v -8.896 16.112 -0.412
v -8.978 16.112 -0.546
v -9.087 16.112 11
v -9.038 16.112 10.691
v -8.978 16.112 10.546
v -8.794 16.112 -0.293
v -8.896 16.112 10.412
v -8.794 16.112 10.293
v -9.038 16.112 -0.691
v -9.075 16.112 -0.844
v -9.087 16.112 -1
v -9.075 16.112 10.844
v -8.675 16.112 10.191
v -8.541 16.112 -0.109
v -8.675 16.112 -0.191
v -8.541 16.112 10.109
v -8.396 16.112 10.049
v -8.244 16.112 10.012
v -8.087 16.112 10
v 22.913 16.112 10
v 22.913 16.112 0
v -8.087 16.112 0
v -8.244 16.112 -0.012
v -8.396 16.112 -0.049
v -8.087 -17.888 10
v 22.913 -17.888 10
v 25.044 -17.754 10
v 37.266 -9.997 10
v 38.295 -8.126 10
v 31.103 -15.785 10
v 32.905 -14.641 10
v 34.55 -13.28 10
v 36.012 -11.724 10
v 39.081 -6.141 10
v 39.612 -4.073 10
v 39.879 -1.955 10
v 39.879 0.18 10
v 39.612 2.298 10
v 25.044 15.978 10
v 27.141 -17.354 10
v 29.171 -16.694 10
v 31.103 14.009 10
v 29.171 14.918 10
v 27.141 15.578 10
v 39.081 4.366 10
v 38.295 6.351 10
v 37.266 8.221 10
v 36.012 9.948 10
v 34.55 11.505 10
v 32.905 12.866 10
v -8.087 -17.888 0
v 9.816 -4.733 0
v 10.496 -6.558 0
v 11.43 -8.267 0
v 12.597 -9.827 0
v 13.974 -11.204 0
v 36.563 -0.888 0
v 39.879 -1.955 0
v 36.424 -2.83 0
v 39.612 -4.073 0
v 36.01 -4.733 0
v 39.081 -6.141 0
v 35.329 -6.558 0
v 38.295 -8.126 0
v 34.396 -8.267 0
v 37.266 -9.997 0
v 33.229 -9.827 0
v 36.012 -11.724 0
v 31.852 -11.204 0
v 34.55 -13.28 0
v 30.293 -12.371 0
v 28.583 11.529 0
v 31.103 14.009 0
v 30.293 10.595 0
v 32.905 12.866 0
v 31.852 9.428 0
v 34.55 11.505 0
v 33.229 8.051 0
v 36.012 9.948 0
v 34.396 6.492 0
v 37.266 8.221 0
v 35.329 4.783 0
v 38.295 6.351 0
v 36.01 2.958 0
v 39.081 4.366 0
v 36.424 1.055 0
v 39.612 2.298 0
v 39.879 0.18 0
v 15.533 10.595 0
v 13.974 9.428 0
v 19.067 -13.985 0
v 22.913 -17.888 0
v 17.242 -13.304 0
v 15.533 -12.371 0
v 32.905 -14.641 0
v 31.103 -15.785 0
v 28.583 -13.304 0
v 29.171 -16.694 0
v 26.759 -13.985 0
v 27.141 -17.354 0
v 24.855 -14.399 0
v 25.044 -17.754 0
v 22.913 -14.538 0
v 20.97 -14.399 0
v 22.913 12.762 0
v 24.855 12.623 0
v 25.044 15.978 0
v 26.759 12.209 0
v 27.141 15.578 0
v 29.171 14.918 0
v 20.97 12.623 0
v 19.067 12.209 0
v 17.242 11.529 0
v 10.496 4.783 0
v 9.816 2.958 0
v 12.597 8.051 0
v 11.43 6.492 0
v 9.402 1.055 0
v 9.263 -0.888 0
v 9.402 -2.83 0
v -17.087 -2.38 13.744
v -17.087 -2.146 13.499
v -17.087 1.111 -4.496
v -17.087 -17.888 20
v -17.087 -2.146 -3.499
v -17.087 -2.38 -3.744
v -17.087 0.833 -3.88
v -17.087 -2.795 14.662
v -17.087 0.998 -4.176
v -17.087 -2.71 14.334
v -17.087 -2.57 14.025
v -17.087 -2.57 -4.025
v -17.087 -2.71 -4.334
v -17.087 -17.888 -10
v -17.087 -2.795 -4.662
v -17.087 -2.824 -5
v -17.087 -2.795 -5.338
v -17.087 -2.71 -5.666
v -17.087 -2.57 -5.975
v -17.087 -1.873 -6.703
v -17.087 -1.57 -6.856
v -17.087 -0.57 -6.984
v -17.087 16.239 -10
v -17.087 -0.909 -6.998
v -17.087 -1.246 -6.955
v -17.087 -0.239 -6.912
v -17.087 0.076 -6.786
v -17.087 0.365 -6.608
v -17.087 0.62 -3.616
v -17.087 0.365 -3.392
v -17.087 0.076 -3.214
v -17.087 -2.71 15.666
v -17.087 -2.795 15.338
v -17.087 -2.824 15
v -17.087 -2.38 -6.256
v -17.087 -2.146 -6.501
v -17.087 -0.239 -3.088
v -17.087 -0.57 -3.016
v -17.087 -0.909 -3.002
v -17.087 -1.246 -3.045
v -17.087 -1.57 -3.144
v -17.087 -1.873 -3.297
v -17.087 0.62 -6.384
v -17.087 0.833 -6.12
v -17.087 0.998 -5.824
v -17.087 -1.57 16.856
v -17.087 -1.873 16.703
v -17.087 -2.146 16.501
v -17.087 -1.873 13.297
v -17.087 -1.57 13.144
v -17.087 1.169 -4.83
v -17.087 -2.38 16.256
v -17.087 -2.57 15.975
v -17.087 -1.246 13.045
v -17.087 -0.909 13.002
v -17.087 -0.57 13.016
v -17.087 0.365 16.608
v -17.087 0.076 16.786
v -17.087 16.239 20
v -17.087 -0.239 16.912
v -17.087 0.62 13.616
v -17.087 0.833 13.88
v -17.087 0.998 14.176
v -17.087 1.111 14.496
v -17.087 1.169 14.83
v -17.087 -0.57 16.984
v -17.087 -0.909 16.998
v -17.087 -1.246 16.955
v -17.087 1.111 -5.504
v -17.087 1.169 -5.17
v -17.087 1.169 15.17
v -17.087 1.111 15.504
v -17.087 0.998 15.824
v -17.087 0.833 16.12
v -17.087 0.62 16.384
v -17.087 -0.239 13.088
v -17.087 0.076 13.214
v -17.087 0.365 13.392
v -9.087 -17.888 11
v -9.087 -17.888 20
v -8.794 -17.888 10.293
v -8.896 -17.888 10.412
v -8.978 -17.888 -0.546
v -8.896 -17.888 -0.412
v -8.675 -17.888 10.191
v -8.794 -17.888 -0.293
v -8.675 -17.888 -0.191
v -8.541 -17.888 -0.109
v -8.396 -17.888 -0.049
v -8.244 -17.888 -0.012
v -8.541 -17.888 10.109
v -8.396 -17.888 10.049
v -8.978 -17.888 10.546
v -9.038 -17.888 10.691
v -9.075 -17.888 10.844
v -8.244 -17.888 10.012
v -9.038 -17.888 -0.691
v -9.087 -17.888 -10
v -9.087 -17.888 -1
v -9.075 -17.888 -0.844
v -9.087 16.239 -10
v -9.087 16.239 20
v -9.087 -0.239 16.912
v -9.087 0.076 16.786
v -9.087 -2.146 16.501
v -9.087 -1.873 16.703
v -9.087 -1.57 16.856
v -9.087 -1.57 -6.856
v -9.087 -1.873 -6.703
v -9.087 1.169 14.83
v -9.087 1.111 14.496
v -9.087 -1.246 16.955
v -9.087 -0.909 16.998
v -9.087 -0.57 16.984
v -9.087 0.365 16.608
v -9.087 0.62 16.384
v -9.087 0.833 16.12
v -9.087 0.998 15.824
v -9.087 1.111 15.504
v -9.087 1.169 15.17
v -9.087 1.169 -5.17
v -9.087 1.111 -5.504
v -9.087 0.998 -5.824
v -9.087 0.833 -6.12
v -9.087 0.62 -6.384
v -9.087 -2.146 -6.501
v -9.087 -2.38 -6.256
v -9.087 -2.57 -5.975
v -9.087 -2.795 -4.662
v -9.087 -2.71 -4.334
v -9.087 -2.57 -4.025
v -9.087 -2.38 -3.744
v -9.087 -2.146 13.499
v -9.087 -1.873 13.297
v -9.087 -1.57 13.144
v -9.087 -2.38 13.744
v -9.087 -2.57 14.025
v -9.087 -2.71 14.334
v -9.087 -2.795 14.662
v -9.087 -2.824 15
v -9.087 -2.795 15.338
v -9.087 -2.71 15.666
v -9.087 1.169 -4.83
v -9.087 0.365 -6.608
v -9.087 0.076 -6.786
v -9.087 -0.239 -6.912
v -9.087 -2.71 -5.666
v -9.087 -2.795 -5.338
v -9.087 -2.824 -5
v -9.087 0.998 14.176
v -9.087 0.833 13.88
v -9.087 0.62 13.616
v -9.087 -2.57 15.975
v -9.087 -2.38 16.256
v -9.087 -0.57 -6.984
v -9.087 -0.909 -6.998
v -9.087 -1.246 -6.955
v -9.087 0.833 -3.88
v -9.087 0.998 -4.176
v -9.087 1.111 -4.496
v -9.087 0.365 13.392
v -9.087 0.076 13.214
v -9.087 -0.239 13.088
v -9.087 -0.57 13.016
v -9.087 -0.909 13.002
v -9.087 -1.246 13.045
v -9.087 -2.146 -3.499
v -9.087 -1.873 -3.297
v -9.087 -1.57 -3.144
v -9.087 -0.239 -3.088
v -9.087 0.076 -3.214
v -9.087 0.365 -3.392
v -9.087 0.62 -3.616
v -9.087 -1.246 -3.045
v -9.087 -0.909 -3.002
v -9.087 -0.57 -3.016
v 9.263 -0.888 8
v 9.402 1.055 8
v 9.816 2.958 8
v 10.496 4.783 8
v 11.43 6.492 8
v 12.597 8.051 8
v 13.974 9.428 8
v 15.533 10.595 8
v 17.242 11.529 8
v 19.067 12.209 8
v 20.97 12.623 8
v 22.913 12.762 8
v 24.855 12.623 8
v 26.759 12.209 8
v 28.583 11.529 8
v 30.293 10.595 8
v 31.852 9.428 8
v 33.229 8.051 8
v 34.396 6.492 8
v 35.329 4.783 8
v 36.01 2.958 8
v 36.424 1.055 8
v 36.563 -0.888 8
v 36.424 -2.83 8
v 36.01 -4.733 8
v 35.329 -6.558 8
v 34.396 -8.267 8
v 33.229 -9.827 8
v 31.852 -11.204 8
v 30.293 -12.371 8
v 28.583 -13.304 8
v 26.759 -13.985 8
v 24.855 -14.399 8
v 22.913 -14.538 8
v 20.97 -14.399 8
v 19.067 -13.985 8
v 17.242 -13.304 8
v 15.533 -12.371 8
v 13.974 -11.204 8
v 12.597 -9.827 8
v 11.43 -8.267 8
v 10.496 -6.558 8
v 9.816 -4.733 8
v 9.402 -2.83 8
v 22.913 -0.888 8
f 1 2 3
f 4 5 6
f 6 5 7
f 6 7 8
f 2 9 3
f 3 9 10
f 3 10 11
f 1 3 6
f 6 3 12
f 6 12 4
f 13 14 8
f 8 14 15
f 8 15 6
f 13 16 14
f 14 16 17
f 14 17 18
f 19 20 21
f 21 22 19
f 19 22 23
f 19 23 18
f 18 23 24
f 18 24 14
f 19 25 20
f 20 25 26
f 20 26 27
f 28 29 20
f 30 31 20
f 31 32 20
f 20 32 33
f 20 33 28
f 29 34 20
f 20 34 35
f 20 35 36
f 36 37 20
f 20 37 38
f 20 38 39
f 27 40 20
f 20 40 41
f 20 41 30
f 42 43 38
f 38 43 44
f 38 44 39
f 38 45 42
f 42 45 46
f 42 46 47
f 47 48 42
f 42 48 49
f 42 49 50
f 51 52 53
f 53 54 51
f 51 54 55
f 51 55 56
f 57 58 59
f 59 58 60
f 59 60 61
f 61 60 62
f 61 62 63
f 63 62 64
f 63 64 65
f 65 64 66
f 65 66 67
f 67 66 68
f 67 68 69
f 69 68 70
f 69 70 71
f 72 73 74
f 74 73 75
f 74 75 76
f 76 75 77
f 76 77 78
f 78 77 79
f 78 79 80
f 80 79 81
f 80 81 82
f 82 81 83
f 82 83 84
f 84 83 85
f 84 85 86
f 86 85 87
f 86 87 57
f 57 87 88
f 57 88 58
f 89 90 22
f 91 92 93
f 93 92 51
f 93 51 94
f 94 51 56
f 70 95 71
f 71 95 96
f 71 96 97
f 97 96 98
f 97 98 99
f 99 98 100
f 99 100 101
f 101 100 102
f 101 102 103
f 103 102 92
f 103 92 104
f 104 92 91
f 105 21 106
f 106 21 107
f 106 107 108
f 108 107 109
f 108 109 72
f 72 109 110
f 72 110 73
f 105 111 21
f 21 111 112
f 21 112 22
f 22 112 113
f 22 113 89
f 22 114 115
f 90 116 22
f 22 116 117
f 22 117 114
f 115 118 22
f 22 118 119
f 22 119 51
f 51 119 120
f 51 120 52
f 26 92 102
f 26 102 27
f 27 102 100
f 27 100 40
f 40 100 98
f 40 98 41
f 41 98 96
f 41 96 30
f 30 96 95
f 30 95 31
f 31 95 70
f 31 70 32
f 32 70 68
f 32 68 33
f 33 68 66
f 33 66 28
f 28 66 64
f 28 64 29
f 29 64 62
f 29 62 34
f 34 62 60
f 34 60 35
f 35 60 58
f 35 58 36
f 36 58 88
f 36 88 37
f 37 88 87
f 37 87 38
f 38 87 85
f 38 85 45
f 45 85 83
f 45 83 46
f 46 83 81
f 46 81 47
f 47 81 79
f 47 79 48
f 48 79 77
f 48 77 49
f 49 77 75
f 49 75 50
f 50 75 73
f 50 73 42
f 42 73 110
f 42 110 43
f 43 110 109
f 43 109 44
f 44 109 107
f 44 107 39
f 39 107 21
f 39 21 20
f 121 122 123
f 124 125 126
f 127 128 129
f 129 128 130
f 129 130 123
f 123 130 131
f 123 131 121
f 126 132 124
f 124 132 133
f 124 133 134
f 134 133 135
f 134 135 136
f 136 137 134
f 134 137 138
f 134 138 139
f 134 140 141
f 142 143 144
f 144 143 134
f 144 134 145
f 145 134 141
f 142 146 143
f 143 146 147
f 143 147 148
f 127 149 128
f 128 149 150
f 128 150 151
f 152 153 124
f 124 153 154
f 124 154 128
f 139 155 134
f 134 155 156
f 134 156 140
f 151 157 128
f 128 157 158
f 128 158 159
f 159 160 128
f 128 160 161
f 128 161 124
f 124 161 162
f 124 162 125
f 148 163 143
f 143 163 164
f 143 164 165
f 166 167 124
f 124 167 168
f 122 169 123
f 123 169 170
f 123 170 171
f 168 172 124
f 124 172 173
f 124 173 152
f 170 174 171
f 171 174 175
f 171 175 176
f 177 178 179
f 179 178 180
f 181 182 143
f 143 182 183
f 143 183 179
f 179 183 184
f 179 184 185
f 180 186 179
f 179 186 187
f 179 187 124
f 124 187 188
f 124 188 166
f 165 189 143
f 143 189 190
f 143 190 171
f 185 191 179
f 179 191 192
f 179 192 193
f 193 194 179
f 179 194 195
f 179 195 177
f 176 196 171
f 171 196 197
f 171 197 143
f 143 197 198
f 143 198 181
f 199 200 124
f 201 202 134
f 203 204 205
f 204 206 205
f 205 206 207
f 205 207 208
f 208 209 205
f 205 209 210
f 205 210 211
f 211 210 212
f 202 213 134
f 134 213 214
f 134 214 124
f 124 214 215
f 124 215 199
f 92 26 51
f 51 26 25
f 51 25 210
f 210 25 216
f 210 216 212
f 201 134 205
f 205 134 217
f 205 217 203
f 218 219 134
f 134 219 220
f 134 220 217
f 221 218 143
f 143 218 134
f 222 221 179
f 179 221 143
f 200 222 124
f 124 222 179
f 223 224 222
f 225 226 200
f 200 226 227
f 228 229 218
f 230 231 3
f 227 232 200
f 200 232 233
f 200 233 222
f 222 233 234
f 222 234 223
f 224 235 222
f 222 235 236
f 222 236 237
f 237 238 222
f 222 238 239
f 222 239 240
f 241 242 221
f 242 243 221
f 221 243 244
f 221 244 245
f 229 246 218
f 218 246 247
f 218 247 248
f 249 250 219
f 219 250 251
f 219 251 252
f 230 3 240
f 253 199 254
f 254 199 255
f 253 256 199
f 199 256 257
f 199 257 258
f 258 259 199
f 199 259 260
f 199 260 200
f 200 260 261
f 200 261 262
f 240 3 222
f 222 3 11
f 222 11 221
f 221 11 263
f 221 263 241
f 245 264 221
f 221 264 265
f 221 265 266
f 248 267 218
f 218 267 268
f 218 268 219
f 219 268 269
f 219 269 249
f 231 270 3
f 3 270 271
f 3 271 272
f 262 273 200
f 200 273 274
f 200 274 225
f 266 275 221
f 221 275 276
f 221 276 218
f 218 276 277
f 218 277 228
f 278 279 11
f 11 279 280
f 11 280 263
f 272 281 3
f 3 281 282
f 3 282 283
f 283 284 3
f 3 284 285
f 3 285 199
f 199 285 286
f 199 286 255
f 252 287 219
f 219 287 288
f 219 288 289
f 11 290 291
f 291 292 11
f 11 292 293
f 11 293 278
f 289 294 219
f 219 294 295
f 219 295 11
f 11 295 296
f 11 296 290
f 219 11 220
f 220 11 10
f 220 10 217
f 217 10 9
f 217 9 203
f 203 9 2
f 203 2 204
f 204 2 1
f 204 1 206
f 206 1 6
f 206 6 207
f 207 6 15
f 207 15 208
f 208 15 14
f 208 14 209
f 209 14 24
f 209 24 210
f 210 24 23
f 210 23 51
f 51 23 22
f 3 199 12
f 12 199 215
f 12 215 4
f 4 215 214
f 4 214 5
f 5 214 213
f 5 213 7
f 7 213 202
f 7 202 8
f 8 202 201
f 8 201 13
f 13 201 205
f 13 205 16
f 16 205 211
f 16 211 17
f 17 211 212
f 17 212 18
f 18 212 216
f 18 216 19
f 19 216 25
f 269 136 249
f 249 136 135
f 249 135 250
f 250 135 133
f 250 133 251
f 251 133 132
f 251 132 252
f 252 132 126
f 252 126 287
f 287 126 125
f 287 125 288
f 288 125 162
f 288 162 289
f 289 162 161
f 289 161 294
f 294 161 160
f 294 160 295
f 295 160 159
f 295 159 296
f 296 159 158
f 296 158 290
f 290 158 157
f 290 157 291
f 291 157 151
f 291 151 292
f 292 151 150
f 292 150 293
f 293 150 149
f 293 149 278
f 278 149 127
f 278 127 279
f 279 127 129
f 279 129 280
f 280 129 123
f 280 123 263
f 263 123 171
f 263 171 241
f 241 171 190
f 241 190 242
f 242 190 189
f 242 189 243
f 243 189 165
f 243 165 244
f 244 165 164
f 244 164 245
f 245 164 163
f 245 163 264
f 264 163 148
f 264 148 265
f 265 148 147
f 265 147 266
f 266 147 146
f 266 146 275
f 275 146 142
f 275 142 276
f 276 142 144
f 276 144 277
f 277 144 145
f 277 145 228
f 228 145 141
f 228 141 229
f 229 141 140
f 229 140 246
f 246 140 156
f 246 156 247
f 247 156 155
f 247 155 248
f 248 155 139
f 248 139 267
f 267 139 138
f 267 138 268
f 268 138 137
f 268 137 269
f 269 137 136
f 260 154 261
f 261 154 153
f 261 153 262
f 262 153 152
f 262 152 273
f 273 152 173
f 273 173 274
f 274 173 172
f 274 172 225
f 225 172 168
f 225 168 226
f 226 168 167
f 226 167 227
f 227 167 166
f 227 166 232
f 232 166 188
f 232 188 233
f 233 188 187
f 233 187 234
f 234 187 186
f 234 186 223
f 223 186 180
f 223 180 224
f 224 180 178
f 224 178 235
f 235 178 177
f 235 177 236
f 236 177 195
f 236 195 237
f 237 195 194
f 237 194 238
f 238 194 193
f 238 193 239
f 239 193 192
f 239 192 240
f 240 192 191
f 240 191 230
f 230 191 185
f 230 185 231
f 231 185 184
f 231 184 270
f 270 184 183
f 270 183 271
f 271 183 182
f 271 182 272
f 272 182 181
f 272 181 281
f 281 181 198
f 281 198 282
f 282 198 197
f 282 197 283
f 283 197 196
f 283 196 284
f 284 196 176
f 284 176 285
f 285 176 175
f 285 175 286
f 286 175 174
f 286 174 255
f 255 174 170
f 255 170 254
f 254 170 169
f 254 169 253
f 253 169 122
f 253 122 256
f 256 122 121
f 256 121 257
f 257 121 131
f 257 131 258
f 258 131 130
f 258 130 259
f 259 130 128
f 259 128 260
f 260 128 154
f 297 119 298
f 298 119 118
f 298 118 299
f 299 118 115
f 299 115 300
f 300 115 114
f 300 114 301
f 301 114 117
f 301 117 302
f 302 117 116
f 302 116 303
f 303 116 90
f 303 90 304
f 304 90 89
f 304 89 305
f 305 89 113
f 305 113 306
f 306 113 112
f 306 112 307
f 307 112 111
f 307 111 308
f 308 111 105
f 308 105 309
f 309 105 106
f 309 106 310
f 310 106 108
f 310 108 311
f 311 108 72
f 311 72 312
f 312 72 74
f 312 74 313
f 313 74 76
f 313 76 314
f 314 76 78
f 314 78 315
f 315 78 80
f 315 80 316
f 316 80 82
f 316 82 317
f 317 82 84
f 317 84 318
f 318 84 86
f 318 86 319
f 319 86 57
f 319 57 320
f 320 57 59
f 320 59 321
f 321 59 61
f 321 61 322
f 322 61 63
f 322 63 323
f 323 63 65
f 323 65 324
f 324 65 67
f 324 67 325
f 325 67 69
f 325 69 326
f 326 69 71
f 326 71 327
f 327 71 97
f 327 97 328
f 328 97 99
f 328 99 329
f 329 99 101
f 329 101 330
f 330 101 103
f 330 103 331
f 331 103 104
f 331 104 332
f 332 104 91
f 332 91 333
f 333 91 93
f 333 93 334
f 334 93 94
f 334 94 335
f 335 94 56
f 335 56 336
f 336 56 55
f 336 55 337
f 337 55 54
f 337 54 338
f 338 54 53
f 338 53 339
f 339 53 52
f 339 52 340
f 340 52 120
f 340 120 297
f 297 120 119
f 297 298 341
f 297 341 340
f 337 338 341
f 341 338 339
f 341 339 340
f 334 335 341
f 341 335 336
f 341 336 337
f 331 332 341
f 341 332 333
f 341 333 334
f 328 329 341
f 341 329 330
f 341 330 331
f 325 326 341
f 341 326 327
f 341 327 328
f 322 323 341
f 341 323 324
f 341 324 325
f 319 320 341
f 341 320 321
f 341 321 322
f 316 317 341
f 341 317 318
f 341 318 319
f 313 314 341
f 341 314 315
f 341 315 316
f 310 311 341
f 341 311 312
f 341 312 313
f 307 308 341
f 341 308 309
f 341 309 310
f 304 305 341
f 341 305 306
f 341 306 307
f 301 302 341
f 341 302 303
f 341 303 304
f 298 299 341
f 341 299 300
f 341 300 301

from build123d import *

# Parameters (mm, degrees)
BOSS_EXTRUDE1_DEPTH = 10
SKETCH3_W           = 30
SKETCH3_H           = 34.126910457
BOSS_EXTRUDE2_DEPTH = 8
FILLET1_R           = 1
SKETCH5_R           = 2
CUT_EXTRUDE2_DEPTH  = 63.999765085
SKETCH6_R           = 13.65
CUT_EXTRUDE3_DEPTH  = 8


with BuildPart() as part:
    # Sketch2 → Boss-Extrude1 (new body)
    with BuildSketch(Plane.XY):
        with BuildLine():
            Line((22.912878475, 16.112283523), (-17.087121525, 16.112283523))
            Line((-17.087121525, 16.112283523), (-17.087121525, -17.887716477))
            Line((-17.087121525, -17.887716477), (22.912878475, -17.887716477))
            ThreePointArc((22.912878475, -17.887716477), (39.912878475, -0.887716477), (22.912878475, 16.112283523))
        make_face()
    extrude(amount=BOSS_EXTRUDE1_DEPTH)

    # Sketch3 → Boss-Extrude2 (add)
    with BuildSketch(Plane.ZY.offset(17.087121525)):
        with Locations((5, -0.824261249)):
            Rectangle(SKETCH3_W, SKETCH3_H)
    extrude(amount=-BOSS_EXTRUDE2_DEPTH)

    # Fillet1
    fillet1_edges = [part.edges().sort_by_distance(p)[0] for p in [
        (-9.087121525, -0.887716477, 0),
        (-9.087121525, -0.887716477, 10),
    ]]
    fillet(fillet1_edges, radius=FILLET1_R)

    # Sketch5 → Cut-Extrude2 (cut, through all)
    with BuildSketch(Plane.ZY.offset(17.087121525)):
        with Locations(Location((-5, -0.824261249, 0), (0, 0, 270))):
            Circle(SKETCH5_R)
        with Locations(Location((15, -0.824261249, 0), (0, 0, 270))):
            Circle(SKETCH5_R)
    extrude(amount=-CUT_EXTRUDE2_DEPTH, mode=Mode.SUBTRACT)

    # Sketch6 → Cut-Extrude3 (cut)
    with BuildSketch(Plane(origin=(0, 0, 0), x_dir=(-1, 0, 0), z_dir=(0, 0, -1))):
        with Locations((-22.912878475, -0.887716477)):
            Circle(SKETCH6_R)
    extrude(amount=-CUT_EXTRUDE3_DEPTH, mode=Mode.SUBTRACT)


solid = part.part
